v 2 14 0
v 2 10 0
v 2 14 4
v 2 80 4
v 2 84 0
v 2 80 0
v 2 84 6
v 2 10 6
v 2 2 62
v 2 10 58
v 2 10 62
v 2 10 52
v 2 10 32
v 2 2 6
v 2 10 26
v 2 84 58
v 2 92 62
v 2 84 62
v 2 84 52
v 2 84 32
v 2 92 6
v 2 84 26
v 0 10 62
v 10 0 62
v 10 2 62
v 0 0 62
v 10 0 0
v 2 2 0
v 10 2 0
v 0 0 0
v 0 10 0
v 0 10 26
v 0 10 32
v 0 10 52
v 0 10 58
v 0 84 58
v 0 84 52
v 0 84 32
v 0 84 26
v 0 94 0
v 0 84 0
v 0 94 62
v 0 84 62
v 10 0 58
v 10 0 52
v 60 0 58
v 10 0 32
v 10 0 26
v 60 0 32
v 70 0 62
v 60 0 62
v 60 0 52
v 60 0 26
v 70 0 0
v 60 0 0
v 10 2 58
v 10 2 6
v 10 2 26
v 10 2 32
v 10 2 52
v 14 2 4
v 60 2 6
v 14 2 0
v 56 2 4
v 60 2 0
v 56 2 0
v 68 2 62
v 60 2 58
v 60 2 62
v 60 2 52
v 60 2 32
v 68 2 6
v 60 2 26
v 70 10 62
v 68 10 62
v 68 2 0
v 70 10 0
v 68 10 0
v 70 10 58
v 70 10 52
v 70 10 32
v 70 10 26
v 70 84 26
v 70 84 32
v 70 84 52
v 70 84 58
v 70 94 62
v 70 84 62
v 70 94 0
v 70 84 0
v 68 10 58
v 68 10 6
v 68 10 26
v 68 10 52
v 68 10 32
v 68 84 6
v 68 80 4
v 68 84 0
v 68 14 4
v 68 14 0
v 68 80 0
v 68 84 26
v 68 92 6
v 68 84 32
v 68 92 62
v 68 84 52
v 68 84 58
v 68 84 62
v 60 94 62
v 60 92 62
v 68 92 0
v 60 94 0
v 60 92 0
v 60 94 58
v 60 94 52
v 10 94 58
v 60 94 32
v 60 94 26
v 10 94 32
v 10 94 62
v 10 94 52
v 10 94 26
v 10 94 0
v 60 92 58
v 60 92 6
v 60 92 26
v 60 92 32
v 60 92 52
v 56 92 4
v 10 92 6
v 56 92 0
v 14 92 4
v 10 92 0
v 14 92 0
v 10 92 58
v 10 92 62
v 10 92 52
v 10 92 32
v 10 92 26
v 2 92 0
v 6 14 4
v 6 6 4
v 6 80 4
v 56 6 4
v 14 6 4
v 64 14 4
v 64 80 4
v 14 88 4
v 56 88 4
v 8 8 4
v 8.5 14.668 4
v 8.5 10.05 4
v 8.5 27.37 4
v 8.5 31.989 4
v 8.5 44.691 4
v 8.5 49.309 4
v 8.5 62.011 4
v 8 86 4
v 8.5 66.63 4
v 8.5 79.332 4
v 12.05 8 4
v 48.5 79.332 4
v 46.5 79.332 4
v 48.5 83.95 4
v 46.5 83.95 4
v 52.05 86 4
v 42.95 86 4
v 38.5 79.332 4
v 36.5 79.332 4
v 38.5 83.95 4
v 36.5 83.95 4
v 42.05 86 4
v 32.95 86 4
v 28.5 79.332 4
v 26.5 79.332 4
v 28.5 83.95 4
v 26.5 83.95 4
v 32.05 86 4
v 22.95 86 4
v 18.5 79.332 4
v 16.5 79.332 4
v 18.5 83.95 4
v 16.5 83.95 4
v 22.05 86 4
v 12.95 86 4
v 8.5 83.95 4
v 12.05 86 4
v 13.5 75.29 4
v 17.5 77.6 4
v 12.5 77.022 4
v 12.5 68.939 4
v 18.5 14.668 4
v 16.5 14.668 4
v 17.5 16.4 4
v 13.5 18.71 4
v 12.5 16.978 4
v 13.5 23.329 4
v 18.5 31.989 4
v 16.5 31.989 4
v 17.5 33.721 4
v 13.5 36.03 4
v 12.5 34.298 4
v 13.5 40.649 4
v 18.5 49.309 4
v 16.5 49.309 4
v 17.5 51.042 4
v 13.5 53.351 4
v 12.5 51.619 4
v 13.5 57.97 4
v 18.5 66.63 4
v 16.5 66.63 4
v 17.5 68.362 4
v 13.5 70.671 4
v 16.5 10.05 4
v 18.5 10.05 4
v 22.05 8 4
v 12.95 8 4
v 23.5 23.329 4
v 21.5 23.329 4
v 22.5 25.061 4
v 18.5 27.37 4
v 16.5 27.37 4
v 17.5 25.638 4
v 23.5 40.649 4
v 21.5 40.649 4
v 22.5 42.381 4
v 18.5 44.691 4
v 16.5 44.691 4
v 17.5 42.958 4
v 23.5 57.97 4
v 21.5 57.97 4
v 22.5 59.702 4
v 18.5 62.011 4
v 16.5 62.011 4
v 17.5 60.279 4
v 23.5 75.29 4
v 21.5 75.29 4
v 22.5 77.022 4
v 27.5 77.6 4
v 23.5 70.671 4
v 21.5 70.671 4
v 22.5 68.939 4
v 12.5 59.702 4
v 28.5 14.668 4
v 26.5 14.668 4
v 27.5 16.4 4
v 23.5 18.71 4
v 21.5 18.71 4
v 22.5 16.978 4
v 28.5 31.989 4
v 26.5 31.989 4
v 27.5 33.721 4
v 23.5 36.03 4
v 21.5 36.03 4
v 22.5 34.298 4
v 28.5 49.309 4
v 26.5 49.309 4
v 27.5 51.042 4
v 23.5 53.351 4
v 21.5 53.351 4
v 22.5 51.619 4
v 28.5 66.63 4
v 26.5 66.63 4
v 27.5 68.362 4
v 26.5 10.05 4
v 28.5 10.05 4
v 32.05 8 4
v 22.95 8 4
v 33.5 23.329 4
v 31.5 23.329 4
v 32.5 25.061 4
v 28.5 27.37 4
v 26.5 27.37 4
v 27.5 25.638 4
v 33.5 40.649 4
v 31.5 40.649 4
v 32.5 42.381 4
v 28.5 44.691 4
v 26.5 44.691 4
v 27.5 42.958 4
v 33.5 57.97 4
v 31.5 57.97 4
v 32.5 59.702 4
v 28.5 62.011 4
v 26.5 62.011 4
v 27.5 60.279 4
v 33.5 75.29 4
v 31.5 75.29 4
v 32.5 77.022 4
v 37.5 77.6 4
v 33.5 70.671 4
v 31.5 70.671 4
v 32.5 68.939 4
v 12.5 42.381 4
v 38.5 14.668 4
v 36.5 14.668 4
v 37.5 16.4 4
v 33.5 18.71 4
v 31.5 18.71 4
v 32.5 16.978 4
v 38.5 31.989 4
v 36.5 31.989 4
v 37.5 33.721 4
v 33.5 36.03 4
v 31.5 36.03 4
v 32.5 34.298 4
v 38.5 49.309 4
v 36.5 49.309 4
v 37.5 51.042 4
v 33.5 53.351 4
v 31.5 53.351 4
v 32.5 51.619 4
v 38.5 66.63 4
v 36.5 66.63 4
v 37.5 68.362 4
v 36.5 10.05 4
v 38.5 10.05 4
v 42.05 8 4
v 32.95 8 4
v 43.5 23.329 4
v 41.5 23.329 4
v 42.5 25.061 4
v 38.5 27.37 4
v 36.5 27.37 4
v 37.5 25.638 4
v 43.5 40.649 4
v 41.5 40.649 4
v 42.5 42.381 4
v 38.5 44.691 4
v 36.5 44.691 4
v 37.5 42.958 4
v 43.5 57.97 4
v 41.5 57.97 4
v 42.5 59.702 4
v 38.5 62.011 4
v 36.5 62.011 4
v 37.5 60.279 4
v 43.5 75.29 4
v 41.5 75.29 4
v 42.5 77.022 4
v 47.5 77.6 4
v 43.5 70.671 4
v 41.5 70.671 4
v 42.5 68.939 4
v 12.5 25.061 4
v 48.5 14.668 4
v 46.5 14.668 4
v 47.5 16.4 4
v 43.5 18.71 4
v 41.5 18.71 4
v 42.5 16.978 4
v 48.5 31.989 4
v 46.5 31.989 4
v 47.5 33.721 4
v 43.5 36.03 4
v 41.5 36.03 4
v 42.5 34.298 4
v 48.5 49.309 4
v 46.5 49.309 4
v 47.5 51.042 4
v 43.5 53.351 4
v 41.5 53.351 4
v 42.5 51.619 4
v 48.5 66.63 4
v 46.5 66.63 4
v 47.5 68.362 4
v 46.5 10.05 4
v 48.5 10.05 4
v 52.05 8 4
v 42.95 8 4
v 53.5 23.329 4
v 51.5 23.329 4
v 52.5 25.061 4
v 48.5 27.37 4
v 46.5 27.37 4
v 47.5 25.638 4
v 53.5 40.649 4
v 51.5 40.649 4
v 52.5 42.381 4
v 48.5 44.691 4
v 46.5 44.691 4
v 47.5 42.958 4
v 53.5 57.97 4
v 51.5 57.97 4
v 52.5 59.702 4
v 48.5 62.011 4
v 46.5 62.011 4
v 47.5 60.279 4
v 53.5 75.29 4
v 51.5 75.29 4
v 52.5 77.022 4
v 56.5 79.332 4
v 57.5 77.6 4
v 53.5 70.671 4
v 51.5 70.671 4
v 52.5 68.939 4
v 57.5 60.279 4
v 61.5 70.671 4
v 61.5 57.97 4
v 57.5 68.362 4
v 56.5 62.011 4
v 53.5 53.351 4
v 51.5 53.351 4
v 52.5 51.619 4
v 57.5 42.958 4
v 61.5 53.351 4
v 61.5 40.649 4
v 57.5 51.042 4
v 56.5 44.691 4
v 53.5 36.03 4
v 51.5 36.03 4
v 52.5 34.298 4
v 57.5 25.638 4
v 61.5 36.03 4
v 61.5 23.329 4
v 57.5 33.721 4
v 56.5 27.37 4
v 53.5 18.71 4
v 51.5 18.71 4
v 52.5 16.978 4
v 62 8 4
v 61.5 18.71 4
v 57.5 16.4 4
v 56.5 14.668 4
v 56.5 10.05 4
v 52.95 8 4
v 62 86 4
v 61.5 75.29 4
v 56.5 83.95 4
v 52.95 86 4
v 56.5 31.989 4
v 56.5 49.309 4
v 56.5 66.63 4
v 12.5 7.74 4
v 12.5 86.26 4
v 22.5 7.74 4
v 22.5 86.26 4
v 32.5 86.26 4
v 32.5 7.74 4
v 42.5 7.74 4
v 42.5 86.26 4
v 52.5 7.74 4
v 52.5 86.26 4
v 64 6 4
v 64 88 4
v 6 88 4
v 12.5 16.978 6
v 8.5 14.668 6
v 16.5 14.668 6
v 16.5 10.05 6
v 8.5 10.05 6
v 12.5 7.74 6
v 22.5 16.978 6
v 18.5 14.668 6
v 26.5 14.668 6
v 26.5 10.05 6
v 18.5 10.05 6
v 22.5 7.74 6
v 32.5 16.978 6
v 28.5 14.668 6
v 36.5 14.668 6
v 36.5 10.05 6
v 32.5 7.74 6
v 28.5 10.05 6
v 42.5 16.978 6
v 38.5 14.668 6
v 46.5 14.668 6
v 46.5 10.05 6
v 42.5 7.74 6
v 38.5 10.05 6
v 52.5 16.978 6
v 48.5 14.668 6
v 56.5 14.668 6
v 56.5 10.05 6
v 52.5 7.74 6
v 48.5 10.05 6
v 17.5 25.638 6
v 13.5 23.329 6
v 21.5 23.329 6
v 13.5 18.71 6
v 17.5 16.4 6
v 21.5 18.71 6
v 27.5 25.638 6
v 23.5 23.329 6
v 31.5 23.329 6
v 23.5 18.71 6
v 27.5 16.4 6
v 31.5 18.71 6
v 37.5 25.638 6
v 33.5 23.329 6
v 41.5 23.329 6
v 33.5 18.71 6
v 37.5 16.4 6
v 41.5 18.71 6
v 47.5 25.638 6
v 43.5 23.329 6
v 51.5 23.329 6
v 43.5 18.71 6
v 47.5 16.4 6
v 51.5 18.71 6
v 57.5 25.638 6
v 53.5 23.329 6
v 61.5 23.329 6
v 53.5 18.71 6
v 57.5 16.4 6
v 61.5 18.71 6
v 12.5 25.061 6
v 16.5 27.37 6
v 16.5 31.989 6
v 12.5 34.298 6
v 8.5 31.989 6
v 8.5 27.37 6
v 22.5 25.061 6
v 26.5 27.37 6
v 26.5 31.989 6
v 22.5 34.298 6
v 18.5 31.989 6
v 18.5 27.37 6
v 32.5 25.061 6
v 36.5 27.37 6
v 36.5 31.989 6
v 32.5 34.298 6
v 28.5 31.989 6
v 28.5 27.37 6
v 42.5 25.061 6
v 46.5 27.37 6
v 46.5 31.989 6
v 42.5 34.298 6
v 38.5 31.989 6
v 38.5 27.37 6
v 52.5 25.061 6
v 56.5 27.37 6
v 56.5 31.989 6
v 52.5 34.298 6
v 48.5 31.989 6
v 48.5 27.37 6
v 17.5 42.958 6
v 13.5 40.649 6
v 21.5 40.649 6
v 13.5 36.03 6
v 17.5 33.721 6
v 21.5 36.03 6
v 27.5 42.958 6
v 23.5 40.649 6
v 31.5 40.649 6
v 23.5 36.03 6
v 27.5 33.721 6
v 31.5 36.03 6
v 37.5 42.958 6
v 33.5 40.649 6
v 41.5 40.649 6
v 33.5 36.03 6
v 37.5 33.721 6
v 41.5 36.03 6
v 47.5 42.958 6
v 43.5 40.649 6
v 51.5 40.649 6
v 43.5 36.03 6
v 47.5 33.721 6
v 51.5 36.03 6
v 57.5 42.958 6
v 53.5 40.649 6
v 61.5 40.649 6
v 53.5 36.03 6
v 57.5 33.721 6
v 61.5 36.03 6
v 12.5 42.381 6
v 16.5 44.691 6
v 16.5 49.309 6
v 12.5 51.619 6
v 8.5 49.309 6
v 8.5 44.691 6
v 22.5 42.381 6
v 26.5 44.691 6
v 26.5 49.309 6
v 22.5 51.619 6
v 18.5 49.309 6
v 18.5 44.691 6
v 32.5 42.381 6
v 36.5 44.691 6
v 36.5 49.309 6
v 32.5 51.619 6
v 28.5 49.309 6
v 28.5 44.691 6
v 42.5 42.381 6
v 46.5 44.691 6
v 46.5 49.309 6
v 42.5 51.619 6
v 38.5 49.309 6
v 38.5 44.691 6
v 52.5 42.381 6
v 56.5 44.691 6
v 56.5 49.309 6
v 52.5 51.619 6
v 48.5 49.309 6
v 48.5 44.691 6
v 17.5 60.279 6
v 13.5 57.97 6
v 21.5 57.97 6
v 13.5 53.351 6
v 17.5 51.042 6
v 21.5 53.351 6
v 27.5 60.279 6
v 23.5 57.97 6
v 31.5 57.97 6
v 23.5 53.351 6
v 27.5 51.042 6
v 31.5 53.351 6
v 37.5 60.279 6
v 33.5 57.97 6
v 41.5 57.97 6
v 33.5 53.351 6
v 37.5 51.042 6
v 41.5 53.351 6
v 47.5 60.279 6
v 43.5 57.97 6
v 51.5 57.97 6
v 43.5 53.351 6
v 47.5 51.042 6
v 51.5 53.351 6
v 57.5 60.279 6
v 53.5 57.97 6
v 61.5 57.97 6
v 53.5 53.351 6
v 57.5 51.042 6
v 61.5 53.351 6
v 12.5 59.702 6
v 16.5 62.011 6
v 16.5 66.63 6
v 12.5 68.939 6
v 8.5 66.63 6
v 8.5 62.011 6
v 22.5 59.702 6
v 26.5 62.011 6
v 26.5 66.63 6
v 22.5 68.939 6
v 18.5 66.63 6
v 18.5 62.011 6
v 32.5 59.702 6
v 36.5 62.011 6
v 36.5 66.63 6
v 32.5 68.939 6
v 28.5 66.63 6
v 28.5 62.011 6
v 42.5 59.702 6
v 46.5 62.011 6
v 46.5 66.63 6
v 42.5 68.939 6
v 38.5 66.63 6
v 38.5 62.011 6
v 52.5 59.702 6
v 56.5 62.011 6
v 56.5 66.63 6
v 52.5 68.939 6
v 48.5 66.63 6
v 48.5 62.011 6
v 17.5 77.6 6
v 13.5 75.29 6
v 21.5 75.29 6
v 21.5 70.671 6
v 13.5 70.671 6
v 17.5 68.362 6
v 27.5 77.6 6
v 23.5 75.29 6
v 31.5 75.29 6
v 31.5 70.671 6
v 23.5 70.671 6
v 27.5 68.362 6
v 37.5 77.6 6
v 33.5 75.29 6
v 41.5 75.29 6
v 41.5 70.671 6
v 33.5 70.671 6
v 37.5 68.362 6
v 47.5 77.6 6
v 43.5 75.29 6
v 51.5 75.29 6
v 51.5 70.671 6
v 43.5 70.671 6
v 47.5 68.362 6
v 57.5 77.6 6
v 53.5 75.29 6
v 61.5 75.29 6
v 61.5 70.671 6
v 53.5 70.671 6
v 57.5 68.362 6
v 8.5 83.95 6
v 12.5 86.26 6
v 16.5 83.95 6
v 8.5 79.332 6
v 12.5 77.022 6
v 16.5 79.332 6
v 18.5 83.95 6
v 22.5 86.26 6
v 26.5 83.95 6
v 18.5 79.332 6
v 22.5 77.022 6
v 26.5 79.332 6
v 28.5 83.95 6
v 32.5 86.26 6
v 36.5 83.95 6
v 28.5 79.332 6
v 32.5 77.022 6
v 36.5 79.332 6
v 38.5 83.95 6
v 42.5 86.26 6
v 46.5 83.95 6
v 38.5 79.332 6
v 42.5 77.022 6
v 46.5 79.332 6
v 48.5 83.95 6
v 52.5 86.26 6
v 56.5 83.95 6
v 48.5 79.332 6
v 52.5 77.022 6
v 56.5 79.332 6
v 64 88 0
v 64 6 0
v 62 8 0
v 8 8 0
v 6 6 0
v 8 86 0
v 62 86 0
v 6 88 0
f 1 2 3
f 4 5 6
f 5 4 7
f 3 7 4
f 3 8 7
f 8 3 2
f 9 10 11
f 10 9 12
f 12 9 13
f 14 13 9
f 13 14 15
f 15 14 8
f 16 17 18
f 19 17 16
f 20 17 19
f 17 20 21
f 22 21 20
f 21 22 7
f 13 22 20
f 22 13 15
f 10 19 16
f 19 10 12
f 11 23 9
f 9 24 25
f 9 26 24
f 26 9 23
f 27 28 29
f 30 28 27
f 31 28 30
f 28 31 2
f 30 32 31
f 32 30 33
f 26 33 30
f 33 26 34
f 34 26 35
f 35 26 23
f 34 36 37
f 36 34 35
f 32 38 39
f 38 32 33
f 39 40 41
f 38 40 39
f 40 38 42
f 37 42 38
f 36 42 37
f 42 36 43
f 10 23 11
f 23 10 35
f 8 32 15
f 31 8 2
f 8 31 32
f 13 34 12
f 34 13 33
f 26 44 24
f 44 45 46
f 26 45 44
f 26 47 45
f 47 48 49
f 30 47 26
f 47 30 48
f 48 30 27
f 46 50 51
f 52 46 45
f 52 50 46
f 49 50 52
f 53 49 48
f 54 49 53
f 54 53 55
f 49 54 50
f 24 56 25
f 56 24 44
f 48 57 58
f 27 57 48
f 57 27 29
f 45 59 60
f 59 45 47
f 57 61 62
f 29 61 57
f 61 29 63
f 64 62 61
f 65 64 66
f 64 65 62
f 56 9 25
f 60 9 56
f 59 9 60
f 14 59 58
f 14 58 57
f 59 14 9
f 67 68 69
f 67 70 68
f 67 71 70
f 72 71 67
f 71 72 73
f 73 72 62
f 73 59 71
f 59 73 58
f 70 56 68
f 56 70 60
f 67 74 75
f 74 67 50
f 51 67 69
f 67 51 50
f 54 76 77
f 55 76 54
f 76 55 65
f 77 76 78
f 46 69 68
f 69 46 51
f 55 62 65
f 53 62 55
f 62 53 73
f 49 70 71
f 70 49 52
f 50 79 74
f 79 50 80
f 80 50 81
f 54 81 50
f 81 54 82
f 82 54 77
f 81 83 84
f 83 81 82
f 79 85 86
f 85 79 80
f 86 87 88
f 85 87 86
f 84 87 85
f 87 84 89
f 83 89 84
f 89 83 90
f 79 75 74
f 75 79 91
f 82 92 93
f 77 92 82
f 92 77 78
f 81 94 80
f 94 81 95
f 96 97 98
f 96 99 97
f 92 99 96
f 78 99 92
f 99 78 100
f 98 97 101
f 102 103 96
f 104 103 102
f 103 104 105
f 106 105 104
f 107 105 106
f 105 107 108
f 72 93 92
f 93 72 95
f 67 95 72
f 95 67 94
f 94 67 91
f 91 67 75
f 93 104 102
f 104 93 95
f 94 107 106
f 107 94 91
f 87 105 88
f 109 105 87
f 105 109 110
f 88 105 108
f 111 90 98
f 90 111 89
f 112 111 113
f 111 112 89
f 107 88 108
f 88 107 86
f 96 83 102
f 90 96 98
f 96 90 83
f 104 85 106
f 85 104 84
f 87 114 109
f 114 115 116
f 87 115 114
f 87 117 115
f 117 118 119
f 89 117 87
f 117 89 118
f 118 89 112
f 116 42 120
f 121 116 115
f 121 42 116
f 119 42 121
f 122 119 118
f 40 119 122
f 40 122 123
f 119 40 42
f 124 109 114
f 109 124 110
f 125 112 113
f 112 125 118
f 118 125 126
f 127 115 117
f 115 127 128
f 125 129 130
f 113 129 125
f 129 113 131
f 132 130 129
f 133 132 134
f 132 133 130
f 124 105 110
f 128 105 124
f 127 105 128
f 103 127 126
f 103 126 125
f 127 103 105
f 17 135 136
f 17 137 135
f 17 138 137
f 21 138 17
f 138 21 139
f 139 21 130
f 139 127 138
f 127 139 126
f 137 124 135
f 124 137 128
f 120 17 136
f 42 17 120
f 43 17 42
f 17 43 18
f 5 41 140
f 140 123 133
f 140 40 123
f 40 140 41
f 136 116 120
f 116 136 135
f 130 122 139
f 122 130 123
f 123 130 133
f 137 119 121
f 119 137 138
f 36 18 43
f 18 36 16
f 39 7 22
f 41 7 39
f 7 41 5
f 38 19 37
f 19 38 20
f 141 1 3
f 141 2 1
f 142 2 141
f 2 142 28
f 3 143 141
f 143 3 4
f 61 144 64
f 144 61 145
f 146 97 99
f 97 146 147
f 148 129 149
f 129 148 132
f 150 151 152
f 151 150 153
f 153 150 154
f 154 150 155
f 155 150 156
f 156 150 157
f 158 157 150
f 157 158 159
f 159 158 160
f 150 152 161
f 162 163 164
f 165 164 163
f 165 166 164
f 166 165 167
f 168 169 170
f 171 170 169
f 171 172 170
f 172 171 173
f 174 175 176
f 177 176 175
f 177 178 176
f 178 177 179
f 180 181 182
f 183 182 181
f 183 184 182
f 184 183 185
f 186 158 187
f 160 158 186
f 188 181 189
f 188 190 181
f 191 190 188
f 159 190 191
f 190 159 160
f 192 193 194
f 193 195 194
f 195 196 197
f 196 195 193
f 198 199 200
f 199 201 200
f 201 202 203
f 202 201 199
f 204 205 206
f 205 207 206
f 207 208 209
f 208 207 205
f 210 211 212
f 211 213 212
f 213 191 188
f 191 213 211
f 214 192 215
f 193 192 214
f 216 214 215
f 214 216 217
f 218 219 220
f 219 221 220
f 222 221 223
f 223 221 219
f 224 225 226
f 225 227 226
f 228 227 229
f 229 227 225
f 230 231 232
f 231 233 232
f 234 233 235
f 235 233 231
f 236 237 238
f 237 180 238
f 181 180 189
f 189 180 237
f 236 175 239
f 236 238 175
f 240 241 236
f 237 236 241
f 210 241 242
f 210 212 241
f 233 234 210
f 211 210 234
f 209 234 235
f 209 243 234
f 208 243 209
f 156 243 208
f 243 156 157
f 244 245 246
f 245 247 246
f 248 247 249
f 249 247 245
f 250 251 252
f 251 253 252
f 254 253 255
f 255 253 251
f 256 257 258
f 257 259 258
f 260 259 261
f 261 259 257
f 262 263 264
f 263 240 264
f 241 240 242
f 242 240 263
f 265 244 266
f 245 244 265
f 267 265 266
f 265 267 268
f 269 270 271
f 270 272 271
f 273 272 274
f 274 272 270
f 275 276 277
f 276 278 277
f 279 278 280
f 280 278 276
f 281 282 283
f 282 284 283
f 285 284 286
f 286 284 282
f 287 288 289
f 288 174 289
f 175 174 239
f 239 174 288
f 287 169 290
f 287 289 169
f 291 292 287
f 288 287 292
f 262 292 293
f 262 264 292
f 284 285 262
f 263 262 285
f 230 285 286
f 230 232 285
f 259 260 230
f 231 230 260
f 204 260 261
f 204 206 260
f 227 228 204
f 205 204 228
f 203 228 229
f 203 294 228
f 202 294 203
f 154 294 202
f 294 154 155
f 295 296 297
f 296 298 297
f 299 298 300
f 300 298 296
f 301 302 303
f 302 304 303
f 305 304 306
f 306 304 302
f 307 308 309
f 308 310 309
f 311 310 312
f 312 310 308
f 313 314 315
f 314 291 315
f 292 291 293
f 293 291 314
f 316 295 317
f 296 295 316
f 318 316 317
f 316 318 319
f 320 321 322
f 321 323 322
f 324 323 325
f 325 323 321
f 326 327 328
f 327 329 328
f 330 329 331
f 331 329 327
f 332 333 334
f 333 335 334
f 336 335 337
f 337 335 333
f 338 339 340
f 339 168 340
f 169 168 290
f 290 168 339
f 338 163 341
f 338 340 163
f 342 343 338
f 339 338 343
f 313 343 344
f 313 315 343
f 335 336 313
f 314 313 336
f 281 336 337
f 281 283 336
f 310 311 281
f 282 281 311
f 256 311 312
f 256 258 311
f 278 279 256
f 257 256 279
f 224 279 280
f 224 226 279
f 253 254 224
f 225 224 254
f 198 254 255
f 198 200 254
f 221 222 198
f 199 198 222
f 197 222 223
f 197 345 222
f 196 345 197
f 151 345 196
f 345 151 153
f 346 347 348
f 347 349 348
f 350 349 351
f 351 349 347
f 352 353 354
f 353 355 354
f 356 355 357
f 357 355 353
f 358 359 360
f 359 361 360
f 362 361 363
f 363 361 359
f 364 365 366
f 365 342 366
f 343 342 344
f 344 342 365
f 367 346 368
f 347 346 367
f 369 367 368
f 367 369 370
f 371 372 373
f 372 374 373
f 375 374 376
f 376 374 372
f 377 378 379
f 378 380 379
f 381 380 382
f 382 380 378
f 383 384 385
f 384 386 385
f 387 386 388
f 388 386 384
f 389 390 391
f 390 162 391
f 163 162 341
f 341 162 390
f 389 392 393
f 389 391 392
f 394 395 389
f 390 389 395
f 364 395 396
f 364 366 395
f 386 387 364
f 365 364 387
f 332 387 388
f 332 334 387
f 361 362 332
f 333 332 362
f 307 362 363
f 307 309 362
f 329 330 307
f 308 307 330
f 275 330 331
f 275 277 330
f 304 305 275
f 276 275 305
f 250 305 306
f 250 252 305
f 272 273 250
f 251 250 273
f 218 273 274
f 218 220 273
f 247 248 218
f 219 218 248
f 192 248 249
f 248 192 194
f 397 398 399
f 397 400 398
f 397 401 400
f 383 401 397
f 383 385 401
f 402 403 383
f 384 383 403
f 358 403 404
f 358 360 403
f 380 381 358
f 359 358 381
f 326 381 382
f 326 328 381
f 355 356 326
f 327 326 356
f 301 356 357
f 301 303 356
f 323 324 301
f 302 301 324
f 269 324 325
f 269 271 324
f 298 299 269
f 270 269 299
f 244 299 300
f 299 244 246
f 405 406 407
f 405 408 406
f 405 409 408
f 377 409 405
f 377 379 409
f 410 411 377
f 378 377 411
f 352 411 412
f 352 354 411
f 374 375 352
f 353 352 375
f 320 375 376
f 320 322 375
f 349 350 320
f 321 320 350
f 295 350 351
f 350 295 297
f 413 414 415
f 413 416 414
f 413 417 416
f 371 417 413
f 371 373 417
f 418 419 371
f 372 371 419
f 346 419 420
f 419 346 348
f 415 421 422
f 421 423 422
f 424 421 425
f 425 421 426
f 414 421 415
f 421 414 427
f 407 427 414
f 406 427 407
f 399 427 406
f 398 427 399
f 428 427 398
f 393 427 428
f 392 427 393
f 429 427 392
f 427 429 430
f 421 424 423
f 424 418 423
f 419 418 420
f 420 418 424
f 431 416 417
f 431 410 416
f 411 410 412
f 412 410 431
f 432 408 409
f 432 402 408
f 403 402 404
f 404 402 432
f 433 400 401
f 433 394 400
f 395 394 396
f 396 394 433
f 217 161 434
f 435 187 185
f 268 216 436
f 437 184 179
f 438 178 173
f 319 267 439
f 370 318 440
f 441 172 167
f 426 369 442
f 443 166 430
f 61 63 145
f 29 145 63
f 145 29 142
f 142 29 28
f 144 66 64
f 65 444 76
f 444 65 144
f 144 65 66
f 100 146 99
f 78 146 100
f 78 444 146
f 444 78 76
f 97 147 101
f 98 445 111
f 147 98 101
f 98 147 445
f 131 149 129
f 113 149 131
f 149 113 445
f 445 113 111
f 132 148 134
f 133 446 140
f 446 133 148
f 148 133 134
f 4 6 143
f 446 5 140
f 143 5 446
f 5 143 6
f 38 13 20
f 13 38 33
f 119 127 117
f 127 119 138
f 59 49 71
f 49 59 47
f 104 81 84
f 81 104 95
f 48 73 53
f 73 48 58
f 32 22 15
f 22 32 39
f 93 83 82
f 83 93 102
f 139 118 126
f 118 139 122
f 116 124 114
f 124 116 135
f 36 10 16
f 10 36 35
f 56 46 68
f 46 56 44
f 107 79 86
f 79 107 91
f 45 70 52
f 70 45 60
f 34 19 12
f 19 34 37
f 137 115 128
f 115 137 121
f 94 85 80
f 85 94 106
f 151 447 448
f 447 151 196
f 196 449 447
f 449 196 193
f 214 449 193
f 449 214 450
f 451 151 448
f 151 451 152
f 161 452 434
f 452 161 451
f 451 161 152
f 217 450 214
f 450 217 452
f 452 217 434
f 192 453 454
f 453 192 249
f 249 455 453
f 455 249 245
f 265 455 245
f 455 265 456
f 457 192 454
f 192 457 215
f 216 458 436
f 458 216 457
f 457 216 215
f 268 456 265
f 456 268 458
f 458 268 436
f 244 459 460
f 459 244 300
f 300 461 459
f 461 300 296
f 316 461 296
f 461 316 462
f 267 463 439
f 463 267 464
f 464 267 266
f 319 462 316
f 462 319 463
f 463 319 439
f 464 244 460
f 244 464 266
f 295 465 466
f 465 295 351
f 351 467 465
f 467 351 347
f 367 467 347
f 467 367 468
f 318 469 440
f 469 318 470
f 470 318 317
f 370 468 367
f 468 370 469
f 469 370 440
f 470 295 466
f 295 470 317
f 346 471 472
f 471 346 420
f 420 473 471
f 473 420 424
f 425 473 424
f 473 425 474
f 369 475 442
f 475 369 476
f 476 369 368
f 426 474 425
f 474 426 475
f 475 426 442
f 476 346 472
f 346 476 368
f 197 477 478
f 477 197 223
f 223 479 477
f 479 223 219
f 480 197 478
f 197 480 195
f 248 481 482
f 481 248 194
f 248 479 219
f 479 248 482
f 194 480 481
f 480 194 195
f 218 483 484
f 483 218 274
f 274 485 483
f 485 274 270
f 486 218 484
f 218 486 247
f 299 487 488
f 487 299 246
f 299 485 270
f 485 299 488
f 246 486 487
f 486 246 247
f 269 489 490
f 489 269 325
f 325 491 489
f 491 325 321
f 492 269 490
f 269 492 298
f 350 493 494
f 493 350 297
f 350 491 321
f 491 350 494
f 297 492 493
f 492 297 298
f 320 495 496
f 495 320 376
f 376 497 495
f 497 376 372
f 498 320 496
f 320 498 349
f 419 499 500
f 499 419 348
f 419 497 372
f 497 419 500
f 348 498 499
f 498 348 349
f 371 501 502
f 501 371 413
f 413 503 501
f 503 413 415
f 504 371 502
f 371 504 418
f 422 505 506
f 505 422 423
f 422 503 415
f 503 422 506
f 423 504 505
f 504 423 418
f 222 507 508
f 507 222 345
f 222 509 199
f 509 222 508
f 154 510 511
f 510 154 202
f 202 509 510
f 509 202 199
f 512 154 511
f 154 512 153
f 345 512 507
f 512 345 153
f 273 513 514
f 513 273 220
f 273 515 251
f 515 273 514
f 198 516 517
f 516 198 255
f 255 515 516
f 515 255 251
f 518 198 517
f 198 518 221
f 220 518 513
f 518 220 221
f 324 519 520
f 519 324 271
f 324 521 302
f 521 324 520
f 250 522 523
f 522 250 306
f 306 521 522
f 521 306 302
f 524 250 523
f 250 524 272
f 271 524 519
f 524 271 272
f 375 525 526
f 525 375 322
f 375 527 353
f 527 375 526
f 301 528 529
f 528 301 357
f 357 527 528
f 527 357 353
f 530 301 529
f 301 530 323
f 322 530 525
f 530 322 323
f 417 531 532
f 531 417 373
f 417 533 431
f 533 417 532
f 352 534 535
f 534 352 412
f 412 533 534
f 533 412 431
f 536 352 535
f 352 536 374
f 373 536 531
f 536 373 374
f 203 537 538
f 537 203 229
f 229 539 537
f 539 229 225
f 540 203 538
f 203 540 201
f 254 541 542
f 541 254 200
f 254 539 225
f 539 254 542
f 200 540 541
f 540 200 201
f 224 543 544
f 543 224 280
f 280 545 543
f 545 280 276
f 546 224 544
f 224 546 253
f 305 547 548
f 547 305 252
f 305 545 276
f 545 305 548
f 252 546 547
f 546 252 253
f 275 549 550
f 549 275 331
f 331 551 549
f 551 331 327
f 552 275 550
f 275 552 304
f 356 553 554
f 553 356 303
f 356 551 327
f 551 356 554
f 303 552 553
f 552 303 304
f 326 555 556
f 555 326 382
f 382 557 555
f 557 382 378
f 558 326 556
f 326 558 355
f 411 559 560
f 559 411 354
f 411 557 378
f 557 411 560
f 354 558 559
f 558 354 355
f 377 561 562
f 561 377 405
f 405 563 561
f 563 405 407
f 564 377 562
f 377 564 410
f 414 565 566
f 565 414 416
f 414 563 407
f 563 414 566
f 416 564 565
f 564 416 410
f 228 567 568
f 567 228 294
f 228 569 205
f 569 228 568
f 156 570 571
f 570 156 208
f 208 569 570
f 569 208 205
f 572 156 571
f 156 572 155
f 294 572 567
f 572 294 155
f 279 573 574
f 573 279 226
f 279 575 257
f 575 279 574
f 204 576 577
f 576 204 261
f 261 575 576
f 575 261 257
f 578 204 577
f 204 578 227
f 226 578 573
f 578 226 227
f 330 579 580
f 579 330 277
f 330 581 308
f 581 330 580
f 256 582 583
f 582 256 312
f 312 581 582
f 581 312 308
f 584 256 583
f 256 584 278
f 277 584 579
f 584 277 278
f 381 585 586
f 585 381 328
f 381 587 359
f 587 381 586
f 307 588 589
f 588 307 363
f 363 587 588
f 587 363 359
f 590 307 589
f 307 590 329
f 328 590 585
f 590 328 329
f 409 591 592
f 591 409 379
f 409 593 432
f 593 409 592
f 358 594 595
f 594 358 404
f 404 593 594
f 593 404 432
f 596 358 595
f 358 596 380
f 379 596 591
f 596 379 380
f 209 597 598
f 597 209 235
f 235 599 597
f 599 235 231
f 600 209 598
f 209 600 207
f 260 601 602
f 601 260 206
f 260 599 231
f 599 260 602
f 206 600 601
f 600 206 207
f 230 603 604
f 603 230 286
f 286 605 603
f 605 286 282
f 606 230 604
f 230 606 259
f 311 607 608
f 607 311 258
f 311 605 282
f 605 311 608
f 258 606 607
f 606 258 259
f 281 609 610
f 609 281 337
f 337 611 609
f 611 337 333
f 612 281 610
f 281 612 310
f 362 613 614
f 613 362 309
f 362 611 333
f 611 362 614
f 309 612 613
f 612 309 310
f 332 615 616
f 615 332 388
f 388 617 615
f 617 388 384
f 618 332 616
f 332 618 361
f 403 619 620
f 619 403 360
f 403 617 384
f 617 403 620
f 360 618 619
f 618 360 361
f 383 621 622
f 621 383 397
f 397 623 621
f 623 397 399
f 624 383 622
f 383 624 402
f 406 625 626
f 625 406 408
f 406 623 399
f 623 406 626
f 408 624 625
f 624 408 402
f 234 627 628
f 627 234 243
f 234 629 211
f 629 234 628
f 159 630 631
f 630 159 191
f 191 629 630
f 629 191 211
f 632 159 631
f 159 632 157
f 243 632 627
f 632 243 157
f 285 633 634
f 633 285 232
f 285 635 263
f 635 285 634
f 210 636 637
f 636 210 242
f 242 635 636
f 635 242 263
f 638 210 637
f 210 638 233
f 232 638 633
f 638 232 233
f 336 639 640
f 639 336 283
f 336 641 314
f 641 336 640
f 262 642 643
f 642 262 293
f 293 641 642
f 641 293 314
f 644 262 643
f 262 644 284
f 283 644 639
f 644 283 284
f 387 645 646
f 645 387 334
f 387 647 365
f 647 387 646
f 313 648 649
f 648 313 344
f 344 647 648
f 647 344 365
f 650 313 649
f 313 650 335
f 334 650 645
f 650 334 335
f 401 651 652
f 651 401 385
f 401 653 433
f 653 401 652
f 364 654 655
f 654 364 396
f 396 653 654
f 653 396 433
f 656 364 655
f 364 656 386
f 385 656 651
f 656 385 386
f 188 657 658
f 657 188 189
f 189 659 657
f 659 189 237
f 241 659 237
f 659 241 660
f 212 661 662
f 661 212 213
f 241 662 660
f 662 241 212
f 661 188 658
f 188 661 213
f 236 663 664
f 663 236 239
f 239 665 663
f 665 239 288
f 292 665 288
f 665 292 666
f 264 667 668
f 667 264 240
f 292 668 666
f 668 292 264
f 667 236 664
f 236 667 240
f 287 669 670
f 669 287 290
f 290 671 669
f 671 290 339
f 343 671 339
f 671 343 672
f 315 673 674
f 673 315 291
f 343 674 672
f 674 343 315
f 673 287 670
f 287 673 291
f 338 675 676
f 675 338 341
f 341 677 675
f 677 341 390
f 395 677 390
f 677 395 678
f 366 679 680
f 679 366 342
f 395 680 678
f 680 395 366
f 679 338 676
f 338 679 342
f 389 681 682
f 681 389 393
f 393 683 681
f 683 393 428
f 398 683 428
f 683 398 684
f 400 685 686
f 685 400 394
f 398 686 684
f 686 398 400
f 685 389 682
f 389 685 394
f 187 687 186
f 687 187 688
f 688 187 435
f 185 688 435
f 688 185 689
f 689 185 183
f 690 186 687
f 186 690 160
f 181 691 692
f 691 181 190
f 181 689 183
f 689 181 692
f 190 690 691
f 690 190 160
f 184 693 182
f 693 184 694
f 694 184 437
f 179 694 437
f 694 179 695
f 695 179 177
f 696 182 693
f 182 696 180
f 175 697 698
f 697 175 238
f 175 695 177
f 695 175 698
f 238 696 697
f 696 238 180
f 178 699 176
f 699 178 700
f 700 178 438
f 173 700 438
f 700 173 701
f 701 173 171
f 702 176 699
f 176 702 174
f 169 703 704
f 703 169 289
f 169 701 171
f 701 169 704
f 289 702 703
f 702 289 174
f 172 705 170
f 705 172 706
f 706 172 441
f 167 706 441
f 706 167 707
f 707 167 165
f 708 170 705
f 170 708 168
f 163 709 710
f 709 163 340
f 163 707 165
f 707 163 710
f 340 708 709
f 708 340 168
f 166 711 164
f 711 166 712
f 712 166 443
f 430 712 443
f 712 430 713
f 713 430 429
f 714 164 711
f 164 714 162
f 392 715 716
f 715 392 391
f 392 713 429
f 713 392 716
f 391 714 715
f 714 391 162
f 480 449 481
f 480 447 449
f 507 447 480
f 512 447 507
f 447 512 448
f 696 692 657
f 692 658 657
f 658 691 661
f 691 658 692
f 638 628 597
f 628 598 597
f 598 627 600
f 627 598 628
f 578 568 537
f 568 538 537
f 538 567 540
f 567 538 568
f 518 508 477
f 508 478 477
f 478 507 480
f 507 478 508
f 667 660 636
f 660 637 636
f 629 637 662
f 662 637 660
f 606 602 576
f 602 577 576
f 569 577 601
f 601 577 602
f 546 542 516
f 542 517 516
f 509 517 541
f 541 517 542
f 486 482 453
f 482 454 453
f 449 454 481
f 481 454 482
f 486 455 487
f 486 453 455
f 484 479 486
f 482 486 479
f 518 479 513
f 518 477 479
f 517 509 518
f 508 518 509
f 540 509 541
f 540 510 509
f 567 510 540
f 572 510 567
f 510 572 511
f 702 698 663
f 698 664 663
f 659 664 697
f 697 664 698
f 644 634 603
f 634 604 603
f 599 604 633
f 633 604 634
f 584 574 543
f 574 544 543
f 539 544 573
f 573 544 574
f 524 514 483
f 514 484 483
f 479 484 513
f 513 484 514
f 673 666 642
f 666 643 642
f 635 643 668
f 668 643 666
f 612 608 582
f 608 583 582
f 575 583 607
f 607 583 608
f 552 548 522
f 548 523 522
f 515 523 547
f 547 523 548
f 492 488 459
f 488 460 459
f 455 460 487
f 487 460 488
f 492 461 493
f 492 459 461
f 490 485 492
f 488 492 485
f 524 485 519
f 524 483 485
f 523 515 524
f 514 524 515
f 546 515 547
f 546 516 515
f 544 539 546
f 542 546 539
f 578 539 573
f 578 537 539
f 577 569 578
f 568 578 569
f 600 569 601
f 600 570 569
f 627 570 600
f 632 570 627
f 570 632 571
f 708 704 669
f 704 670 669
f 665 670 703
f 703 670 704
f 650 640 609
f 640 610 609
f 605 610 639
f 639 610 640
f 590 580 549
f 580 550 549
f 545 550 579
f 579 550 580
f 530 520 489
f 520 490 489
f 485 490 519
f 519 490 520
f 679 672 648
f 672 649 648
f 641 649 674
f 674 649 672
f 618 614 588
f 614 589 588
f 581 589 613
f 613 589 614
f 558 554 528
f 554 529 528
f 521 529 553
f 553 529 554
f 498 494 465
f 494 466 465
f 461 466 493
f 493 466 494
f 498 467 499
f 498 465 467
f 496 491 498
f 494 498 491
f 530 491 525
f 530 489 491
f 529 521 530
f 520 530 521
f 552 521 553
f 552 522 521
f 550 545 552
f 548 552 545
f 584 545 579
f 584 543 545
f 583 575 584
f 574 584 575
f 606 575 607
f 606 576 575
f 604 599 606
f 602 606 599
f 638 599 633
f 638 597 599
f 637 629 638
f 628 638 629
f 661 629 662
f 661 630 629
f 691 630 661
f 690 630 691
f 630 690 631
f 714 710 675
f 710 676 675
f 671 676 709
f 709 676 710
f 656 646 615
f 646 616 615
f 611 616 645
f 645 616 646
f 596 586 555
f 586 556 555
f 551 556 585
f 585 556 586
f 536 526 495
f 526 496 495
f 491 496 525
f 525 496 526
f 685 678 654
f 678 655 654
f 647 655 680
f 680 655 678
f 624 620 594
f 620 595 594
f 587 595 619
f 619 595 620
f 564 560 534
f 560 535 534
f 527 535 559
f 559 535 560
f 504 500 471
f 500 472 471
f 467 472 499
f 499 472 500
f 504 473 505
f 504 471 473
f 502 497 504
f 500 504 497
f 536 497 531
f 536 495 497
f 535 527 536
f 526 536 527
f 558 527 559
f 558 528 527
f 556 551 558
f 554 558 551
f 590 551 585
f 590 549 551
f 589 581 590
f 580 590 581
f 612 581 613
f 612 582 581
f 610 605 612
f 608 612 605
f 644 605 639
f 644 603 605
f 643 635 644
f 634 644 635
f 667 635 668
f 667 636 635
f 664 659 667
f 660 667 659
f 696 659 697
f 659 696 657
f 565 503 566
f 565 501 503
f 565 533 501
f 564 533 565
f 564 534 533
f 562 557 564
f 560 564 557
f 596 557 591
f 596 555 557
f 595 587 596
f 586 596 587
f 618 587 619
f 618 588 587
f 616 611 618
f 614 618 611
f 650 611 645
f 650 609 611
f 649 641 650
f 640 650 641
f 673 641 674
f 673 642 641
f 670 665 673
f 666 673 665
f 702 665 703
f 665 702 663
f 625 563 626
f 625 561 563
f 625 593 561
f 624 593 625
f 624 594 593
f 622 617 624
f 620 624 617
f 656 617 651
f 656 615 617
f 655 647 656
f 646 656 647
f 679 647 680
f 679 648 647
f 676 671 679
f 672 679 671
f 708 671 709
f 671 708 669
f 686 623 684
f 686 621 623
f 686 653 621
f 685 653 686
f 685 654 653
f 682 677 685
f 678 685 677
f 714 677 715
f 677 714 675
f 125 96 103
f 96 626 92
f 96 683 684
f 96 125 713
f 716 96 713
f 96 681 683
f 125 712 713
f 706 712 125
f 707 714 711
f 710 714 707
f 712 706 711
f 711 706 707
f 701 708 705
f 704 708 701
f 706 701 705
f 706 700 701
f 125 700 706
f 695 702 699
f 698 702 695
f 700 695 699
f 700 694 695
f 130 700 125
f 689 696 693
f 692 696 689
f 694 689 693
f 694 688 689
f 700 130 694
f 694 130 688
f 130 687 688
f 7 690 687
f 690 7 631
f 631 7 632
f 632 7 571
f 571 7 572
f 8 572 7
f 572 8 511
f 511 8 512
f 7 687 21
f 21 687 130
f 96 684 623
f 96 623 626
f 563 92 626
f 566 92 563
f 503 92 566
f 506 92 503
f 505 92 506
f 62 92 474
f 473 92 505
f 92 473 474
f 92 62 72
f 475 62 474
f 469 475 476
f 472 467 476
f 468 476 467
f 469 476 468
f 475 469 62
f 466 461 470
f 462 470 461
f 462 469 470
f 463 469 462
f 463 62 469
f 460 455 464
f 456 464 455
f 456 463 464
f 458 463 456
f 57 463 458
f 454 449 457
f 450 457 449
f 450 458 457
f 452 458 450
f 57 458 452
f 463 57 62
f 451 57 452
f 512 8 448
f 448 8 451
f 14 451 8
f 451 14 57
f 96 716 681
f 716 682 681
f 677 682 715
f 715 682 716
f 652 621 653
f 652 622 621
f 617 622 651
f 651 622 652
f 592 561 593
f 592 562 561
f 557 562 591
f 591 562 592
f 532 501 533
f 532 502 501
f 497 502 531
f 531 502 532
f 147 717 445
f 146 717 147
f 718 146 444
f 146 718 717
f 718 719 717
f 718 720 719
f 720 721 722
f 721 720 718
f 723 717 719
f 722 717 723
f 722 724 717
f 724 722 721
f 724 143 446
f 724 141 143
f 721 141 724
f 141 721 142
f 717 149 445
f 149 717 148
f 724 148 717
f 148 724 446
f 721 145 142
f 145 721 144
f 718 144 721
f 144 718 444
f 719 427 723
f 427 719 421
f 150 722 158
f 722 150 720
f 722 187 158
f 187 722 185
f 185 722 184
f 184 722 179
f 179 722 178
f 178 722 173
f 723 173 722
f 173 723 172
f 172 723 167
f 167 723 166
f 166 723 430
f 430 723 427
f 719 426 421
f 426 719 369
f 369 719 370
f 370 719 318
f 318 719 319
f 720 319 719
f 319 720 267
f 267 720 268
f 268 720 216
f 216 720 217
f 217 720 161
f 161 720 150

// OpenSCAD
// cardholder-01.scad
// Porta-cartas aberto pra pilha de cartas de TCG: chapa de fundo vazada em
// colmeia + 4 cantoneiras em L que abraçam os cantos da pilha. A carta entra
// e sai por cima; as cantoneiras deixam a pilha à vista pelas laterais.
//
// POR QUE ESTE MODELO EXISTE: o `cardholders/card_holder_with_feet.3mf`
// (Don Julio, MakerWorld, Standard Digital File License — arquivo de
// terceiro, sem fonte) foi impresso e ficou FRACO. Motivo medido no mesh
// dele: 4 cantoneiras de 2mm de parede com 56mm de balanço, soldadas numa
// chapa de 2mm por uma junta de só 2x10mm — cada poste é um balanço solto,
// o quadro racka e os postes abrem. Aqui a geometria útil é a mesma
// (bolso 66x90, parede 2mm, braços de 10mm, 56mm de curso de pilha), mas
// com TRÊS reforços que não engrossam nenhuma parede:
//
//   1. CINTA DO MEIO e CINTA DO TOPO — dois anéis fechados de 2x6mm que
//      amarram as 4 cantoneiras nos dois eixos. É o que transforma 4
//      balanços independentes num quadro fechado. A abertura interna dos
//      anéis é o próprio bolso (66x90), então a pilha continua entrando e
//      saindo por cima sem encostar.
//   2. CINTA DE BAIXO (pé integrado) — anel de 2mm x 4mm de altura por
//      baixo da chapa, recuado da borda. Substitui os 4 pezinhos soltos do
//      original (4 peças à parte, pressionadas nos rebaixos Ø10 dos cantos)
//      e de quebra vira nervura: a chapa de 2mm deixa de ser uma placa
//      solta e vira seção em caixa.
//   3. FILETES DE RAIZ — gussets a 45° por BAIXO da chapa, na raiz de cada
//      braço de cantoneira. Espalham o momento do poste na chapa em vez de
//      concentrar tudo na junta de 2mm. Ficam abaixo do plano da carta, não
//      encostam na pilha, e imprimem autossustentados.
//
// BOLSO: 66 x 90 mm, herdado do original — dimensionado pra carta NUA
// (63 x 88). Sleeve penny (66 x 91) NÃO entra. Pra versão com sleeve,
// mexer em pocket_w/pocket_l (ver comentário lá embaixo).
//
// Peça única, sem montagem, sem suporte. Exports canônicos:
//   openscad -o stl/cardholder-01.stl     -D 'part="holder"' cardholder-01.scad
//   openscad -o 3mf/cardholder-01.3mf     -D 'part="holder"' cardholder-01.scad
//   openscad -o 3mf/cardholder-01-x2.3mf  -D 'part="plate2"' cardholder-01.scad
// A pasta 3mf/ tem 2 jobs: uma unidade (70x94mm, pra testar) e a chapa de
// duas unidades lado a lado (146x94mm) — a cama da A1 mini comporta as duas
// numa tacada só.

/* [Peça a renderizar] */
part = "holder"; // "holder" (uma unidade) | "plate2" (chapa com 2 unidades)

/* [Bolso das cartas - medida real da carta] */
// Carta de Pokémon TCG NUA = 63 x 88 mm (medida de catálogo, confere com o
// original impresso). O bolso abaixo é o mesmo do modelo que já foi pra
// mesa, de propósito: assim as unidades novas e a velha empilham juntas.
// Pra outros conteúdos, trocar aqui (padrão do repo = ~1mm de folga/lado):
//   sleeve penny  (66 x 91) -> pocket_w = 68; pocket_l = 93;
//   double sleeve (67 x 92) -> pocket_w = 69; pocket_l = 94;
pocket_w = 66; // mm, largura interna livre (carta nua 63 + 1.5/lado)
pocket_l = 90; // mm, comprimento interno livre (carta nua 88 + 1.0/lado)

/* [Cantoneiras] */
wall     = 2;  // mm, espessura de TUDO (cantoneiras, cintas, pé) — NÃO engrossar: o reforço vem da geometria, não da parede
post_arm = 10; // mm, quanto cada braço do L avança a partir do canto
post_h   = 56; // mm, altura livre de pilha acima da chapa (~220 cartas nuas)

/* [Cintas - as travas] */
band_h       = 6; // mm, altura de cada anel
band_top_gap = 4; // mm, quanto de cantoneira sobra acima da cinta do topo
                  // (0 = cinta rente ao topo, mais rígido; 4 = dá pra ver a
                  //  carta de cima e pinçar a pilha pelas pontas)

/* [Cinta de baixo - pé integrado, no lugar dos 4 pezinhos soltos] */
foot_h     = 4; // mm, altura do pé (era a espessura do pezinho solto do original)
foot_inset = 4; // mm, recuo do anel do pé pra dentro da borda da chapa.
                // Colocar 0.25 faz o pé virar espiga: uma unidade VAZIA
                // encaixa dentro do bolso da unidade de baixo e trava.

/* [Filetes de raiz do poste - por baixo da chapa] */
gusset     = 4;  // mm, cateto do filete a 45°
gusset_len = 14; // mm, comprimento do filete ao longo de cada braço

/* [Chapa de fundo e vazado hexagonal] */
plate_t    = 2;   // mm, espessura da chapa
hex_d      = 8;   // mm, tamanho de cada furo hexagonal (entre faces)
hex_web    = 2;   // mm, material entre furos vizinhos
hex_margin = 5;   // mm, borda sólida em volta do painel (é onde a chapa solda nos postes)

/* [Chapa de impressão] */
plate_gap = 6; // mm, folga entre as duas unidades em part="plate2"

/* [Qualidade] */
$fn = 48;

// ---------------------------------------------------------------------
// Derivados
// ---------------------------------------------------------------------
outer_w = pocket_w + 2 * wall; // 70 — as cantoneiras ficam POR FORA do bolso
outer_l = pocket_l + 2 * wall; // 94

plate_z0 = foot_h;                 // face de baixo da chapa (topo do pé)
plate_z1 = plate_z0 + plate_t;     // face de cima da chapa = onde a carta apoia
total_h  = plate_z1 + post_h;      // altura total da peça

// cinta do meio: centrada no curso livre entre a chapa e a cinta do topo
band_top_z0 = total_h - band_top_gap - band_h;
band_mid_z0 = plate_z1 + (band_top_z0 - plate_z1 - band_h) / 2;

echo(str("cardholder-01: externo ", outer_w, " x ", outer_l, " x ", total_h, " mm"));
echo(str("  bolso ", pocket_w, " x ", pocket_l, " mm | curso de pilha ", post_h, " mm"));
echo(str("  cinta meio z=", band_mid_z0, "..", band_mid_z0 + band_h,
         " | cinta topo z=", band_top_z0, "..", band_top_z0 + band_h));
echo(str("  vaos livres de cantoneira: ", band_mid_z0 - plate_z1, " / ",
         band_top_z0 - (band_mid_z0 + band_h), " / ", total_h - (band_top_z0 + band_h), " mm"));

// ---------------------------------------------------------------------
// Peça inteira
// ---------------------------------------------------------------------
module holder() {
    at_corners() corner_post();
    at_corners() corner_gusset();
    band(band_mid_z0);
    band(band_top_z0);
    base_plate();
    foot_rim();
}

// Coloca os filhos nos 4 cantos, cada um girado pro seu quadrante. O filho
// é desenhado no canto (0,0) abrindo pra +X e +Y.
module at_corners() {
    for (p = [[0, 0, 0], [outer_w, 0, 90], [outer_w, outer_l, 180], [0, outer_l, 270]])
        translate([p[0], p[1], 0])
            rotate([0, 0, p[2]])
                children();
}

// Cantoneira em L: dois braços de `post_arm`, parede `wall`, do chão ao topo.
module corner_post() {
    cube([wall, post_arm, total_h]);
    cube([post_arm, wall, total_h]);
}

// Filete a 45° na raiz do poste, POR BAIXO da chapa (z de plate_z0 pra
// baixo). Fica fora do plano de apoio da carta e imprime autossustentado:
// cada camada é mais larga que a de baixo. Um por braço do L — o segundo
// sai do primeiro espelhado na diagonal x=y.
module corner_gusset() {
    root_gusset();
    mirror([1, -1, 0]) root_gusset();
}

module root_gusset() {
    translate([wall, gusset_len, plate_z0])
        rotate([90, 0, 0])
            linear_extrude(gusset_len)
                polygon([[0, 0], [gusset, 0], [0, -gusset]]);
}

// Cinta: anel fechado que amarra as 4 cantoneiras. A abertura interna é o
// próprio bolso, então a pilha passa livre por dentro.
// Imprimibilidade: a face de baixo de cada anel é uma ponte entre os postes
// (74mm no lado comprido, 50mm no curto). Como a seção do anel tem 2mm, ela
// sai inteira em perímetro — as extrusões correm AO LONGO do vão, ancoradas
// nos dois postes. Só a 1a camada da cinta enruga; as de cima fecham normal.
module band(z0) {
    translate([0, 0, z0])
        difference() {
            cube([outer_w, outer_l, band_h]);
            translate([wall, wall, -0.5])
                cube([pocket_w, pocket_l, band_h + 1]);
        }
}

// Chapa de fundo: é o piso onde a pilha apoia. Vazada em colmeia (mesmo
// painel do deckbox-01) com borda sólida — a borda é justamente onde a
// chapa solda nas cantoneiras e nos filetes.
module base_plate() {
    translate([wall, wall, plate_z0])
        difference() {
            cube([pocket_w, pocket_l, plate_t]);
            hex_panel(pocket_w, pocket_l, plate_t);
        }
}

// Cinta de baixo: anel recuado que levanta a peça da mesa (dá pra enfiar o
// dedo por baixo) e trabalha como nervura da chapa.
module foot_rim() {
    w = pocket_w - 2 * foot_inset;
    l = pocket_l - 2 * foot_inset;
    translate([wall + foot_inset, wall + foot_inset, 0])
        difference() {
            cube([w, l, foot_h]);
            translate([wall, wall, -0.5])
                cube([w - 2 * wall, l - 2 * wall, foot_h + 1]);
        }
}

// Painel de furos hexagonais (colmeia) cobrindo o retângulo a x b no plano
// XY, atravessando a espessura t em Z, com `hex_margin` de borda sólida em
// volta. Conta antes quantas colunas/fileiras cabem INTEIRAS na área útil e
// CENTRALIZA o bloco — nenhum hexágono cortado (sem lascas na borda) e sem
// sobra torta de um lado só. Hexágonos de ponta pra cima (identidade do repo).
module hex_panel(a, b, t) {
    f  = hex_d;            // entre-faces
    R  = f / sqrt(3);      // circunraio (centro -> ponta)
    sx = f + hex_web;      // passo entre colunas
    sy = sx * sqrt(3) / 2; // passo entre fileiras (ímpares deslocam sx/2)

    ua = a - 2 * hex_margin; // área útil
    ub = b - 2 * hex_margin;

    // as fileiras ímpares deslocam sx/2, então a largura ocupada por nc
    // colunas é (nc-1)*sx + f + sx/2
    nc = floor((ua - f - sx / 2) / sx) + 1;
    nr = floor((ub - 2 * R) / sy) + 1;

    if (nc >= 1 && nr >= 1) {
        ox = hex_margin + (ua - ((nc - 1) * sx + f + sx / 2)) / 2;
        oy = hex_margin + (ub - ((nr - 1) * sy + 2 * R)) / 2;
        for (j = [0 : nr - 1], i = [0 : nc - 1])
            translate([ox + f / 2 + i * sx + (j % 2) * sx / 2, oy + R + j * sy, -0.1])
                rotate([0, 0, 30])
                    cylinder(h = t + 0.2, r = R, $fn = 6);
    }
}

// ---------------------------------------------------------------------
// Render
// ---------------------------------------------------------------------
if (part == "plate2") {
    // 2 unidades lado a lado — 146 x 94mm, folgado na cama da A1 mini
    holder();
    translate([outer_w + plate_gap, 0, 0]) holder();
} else {
    holder();
}
